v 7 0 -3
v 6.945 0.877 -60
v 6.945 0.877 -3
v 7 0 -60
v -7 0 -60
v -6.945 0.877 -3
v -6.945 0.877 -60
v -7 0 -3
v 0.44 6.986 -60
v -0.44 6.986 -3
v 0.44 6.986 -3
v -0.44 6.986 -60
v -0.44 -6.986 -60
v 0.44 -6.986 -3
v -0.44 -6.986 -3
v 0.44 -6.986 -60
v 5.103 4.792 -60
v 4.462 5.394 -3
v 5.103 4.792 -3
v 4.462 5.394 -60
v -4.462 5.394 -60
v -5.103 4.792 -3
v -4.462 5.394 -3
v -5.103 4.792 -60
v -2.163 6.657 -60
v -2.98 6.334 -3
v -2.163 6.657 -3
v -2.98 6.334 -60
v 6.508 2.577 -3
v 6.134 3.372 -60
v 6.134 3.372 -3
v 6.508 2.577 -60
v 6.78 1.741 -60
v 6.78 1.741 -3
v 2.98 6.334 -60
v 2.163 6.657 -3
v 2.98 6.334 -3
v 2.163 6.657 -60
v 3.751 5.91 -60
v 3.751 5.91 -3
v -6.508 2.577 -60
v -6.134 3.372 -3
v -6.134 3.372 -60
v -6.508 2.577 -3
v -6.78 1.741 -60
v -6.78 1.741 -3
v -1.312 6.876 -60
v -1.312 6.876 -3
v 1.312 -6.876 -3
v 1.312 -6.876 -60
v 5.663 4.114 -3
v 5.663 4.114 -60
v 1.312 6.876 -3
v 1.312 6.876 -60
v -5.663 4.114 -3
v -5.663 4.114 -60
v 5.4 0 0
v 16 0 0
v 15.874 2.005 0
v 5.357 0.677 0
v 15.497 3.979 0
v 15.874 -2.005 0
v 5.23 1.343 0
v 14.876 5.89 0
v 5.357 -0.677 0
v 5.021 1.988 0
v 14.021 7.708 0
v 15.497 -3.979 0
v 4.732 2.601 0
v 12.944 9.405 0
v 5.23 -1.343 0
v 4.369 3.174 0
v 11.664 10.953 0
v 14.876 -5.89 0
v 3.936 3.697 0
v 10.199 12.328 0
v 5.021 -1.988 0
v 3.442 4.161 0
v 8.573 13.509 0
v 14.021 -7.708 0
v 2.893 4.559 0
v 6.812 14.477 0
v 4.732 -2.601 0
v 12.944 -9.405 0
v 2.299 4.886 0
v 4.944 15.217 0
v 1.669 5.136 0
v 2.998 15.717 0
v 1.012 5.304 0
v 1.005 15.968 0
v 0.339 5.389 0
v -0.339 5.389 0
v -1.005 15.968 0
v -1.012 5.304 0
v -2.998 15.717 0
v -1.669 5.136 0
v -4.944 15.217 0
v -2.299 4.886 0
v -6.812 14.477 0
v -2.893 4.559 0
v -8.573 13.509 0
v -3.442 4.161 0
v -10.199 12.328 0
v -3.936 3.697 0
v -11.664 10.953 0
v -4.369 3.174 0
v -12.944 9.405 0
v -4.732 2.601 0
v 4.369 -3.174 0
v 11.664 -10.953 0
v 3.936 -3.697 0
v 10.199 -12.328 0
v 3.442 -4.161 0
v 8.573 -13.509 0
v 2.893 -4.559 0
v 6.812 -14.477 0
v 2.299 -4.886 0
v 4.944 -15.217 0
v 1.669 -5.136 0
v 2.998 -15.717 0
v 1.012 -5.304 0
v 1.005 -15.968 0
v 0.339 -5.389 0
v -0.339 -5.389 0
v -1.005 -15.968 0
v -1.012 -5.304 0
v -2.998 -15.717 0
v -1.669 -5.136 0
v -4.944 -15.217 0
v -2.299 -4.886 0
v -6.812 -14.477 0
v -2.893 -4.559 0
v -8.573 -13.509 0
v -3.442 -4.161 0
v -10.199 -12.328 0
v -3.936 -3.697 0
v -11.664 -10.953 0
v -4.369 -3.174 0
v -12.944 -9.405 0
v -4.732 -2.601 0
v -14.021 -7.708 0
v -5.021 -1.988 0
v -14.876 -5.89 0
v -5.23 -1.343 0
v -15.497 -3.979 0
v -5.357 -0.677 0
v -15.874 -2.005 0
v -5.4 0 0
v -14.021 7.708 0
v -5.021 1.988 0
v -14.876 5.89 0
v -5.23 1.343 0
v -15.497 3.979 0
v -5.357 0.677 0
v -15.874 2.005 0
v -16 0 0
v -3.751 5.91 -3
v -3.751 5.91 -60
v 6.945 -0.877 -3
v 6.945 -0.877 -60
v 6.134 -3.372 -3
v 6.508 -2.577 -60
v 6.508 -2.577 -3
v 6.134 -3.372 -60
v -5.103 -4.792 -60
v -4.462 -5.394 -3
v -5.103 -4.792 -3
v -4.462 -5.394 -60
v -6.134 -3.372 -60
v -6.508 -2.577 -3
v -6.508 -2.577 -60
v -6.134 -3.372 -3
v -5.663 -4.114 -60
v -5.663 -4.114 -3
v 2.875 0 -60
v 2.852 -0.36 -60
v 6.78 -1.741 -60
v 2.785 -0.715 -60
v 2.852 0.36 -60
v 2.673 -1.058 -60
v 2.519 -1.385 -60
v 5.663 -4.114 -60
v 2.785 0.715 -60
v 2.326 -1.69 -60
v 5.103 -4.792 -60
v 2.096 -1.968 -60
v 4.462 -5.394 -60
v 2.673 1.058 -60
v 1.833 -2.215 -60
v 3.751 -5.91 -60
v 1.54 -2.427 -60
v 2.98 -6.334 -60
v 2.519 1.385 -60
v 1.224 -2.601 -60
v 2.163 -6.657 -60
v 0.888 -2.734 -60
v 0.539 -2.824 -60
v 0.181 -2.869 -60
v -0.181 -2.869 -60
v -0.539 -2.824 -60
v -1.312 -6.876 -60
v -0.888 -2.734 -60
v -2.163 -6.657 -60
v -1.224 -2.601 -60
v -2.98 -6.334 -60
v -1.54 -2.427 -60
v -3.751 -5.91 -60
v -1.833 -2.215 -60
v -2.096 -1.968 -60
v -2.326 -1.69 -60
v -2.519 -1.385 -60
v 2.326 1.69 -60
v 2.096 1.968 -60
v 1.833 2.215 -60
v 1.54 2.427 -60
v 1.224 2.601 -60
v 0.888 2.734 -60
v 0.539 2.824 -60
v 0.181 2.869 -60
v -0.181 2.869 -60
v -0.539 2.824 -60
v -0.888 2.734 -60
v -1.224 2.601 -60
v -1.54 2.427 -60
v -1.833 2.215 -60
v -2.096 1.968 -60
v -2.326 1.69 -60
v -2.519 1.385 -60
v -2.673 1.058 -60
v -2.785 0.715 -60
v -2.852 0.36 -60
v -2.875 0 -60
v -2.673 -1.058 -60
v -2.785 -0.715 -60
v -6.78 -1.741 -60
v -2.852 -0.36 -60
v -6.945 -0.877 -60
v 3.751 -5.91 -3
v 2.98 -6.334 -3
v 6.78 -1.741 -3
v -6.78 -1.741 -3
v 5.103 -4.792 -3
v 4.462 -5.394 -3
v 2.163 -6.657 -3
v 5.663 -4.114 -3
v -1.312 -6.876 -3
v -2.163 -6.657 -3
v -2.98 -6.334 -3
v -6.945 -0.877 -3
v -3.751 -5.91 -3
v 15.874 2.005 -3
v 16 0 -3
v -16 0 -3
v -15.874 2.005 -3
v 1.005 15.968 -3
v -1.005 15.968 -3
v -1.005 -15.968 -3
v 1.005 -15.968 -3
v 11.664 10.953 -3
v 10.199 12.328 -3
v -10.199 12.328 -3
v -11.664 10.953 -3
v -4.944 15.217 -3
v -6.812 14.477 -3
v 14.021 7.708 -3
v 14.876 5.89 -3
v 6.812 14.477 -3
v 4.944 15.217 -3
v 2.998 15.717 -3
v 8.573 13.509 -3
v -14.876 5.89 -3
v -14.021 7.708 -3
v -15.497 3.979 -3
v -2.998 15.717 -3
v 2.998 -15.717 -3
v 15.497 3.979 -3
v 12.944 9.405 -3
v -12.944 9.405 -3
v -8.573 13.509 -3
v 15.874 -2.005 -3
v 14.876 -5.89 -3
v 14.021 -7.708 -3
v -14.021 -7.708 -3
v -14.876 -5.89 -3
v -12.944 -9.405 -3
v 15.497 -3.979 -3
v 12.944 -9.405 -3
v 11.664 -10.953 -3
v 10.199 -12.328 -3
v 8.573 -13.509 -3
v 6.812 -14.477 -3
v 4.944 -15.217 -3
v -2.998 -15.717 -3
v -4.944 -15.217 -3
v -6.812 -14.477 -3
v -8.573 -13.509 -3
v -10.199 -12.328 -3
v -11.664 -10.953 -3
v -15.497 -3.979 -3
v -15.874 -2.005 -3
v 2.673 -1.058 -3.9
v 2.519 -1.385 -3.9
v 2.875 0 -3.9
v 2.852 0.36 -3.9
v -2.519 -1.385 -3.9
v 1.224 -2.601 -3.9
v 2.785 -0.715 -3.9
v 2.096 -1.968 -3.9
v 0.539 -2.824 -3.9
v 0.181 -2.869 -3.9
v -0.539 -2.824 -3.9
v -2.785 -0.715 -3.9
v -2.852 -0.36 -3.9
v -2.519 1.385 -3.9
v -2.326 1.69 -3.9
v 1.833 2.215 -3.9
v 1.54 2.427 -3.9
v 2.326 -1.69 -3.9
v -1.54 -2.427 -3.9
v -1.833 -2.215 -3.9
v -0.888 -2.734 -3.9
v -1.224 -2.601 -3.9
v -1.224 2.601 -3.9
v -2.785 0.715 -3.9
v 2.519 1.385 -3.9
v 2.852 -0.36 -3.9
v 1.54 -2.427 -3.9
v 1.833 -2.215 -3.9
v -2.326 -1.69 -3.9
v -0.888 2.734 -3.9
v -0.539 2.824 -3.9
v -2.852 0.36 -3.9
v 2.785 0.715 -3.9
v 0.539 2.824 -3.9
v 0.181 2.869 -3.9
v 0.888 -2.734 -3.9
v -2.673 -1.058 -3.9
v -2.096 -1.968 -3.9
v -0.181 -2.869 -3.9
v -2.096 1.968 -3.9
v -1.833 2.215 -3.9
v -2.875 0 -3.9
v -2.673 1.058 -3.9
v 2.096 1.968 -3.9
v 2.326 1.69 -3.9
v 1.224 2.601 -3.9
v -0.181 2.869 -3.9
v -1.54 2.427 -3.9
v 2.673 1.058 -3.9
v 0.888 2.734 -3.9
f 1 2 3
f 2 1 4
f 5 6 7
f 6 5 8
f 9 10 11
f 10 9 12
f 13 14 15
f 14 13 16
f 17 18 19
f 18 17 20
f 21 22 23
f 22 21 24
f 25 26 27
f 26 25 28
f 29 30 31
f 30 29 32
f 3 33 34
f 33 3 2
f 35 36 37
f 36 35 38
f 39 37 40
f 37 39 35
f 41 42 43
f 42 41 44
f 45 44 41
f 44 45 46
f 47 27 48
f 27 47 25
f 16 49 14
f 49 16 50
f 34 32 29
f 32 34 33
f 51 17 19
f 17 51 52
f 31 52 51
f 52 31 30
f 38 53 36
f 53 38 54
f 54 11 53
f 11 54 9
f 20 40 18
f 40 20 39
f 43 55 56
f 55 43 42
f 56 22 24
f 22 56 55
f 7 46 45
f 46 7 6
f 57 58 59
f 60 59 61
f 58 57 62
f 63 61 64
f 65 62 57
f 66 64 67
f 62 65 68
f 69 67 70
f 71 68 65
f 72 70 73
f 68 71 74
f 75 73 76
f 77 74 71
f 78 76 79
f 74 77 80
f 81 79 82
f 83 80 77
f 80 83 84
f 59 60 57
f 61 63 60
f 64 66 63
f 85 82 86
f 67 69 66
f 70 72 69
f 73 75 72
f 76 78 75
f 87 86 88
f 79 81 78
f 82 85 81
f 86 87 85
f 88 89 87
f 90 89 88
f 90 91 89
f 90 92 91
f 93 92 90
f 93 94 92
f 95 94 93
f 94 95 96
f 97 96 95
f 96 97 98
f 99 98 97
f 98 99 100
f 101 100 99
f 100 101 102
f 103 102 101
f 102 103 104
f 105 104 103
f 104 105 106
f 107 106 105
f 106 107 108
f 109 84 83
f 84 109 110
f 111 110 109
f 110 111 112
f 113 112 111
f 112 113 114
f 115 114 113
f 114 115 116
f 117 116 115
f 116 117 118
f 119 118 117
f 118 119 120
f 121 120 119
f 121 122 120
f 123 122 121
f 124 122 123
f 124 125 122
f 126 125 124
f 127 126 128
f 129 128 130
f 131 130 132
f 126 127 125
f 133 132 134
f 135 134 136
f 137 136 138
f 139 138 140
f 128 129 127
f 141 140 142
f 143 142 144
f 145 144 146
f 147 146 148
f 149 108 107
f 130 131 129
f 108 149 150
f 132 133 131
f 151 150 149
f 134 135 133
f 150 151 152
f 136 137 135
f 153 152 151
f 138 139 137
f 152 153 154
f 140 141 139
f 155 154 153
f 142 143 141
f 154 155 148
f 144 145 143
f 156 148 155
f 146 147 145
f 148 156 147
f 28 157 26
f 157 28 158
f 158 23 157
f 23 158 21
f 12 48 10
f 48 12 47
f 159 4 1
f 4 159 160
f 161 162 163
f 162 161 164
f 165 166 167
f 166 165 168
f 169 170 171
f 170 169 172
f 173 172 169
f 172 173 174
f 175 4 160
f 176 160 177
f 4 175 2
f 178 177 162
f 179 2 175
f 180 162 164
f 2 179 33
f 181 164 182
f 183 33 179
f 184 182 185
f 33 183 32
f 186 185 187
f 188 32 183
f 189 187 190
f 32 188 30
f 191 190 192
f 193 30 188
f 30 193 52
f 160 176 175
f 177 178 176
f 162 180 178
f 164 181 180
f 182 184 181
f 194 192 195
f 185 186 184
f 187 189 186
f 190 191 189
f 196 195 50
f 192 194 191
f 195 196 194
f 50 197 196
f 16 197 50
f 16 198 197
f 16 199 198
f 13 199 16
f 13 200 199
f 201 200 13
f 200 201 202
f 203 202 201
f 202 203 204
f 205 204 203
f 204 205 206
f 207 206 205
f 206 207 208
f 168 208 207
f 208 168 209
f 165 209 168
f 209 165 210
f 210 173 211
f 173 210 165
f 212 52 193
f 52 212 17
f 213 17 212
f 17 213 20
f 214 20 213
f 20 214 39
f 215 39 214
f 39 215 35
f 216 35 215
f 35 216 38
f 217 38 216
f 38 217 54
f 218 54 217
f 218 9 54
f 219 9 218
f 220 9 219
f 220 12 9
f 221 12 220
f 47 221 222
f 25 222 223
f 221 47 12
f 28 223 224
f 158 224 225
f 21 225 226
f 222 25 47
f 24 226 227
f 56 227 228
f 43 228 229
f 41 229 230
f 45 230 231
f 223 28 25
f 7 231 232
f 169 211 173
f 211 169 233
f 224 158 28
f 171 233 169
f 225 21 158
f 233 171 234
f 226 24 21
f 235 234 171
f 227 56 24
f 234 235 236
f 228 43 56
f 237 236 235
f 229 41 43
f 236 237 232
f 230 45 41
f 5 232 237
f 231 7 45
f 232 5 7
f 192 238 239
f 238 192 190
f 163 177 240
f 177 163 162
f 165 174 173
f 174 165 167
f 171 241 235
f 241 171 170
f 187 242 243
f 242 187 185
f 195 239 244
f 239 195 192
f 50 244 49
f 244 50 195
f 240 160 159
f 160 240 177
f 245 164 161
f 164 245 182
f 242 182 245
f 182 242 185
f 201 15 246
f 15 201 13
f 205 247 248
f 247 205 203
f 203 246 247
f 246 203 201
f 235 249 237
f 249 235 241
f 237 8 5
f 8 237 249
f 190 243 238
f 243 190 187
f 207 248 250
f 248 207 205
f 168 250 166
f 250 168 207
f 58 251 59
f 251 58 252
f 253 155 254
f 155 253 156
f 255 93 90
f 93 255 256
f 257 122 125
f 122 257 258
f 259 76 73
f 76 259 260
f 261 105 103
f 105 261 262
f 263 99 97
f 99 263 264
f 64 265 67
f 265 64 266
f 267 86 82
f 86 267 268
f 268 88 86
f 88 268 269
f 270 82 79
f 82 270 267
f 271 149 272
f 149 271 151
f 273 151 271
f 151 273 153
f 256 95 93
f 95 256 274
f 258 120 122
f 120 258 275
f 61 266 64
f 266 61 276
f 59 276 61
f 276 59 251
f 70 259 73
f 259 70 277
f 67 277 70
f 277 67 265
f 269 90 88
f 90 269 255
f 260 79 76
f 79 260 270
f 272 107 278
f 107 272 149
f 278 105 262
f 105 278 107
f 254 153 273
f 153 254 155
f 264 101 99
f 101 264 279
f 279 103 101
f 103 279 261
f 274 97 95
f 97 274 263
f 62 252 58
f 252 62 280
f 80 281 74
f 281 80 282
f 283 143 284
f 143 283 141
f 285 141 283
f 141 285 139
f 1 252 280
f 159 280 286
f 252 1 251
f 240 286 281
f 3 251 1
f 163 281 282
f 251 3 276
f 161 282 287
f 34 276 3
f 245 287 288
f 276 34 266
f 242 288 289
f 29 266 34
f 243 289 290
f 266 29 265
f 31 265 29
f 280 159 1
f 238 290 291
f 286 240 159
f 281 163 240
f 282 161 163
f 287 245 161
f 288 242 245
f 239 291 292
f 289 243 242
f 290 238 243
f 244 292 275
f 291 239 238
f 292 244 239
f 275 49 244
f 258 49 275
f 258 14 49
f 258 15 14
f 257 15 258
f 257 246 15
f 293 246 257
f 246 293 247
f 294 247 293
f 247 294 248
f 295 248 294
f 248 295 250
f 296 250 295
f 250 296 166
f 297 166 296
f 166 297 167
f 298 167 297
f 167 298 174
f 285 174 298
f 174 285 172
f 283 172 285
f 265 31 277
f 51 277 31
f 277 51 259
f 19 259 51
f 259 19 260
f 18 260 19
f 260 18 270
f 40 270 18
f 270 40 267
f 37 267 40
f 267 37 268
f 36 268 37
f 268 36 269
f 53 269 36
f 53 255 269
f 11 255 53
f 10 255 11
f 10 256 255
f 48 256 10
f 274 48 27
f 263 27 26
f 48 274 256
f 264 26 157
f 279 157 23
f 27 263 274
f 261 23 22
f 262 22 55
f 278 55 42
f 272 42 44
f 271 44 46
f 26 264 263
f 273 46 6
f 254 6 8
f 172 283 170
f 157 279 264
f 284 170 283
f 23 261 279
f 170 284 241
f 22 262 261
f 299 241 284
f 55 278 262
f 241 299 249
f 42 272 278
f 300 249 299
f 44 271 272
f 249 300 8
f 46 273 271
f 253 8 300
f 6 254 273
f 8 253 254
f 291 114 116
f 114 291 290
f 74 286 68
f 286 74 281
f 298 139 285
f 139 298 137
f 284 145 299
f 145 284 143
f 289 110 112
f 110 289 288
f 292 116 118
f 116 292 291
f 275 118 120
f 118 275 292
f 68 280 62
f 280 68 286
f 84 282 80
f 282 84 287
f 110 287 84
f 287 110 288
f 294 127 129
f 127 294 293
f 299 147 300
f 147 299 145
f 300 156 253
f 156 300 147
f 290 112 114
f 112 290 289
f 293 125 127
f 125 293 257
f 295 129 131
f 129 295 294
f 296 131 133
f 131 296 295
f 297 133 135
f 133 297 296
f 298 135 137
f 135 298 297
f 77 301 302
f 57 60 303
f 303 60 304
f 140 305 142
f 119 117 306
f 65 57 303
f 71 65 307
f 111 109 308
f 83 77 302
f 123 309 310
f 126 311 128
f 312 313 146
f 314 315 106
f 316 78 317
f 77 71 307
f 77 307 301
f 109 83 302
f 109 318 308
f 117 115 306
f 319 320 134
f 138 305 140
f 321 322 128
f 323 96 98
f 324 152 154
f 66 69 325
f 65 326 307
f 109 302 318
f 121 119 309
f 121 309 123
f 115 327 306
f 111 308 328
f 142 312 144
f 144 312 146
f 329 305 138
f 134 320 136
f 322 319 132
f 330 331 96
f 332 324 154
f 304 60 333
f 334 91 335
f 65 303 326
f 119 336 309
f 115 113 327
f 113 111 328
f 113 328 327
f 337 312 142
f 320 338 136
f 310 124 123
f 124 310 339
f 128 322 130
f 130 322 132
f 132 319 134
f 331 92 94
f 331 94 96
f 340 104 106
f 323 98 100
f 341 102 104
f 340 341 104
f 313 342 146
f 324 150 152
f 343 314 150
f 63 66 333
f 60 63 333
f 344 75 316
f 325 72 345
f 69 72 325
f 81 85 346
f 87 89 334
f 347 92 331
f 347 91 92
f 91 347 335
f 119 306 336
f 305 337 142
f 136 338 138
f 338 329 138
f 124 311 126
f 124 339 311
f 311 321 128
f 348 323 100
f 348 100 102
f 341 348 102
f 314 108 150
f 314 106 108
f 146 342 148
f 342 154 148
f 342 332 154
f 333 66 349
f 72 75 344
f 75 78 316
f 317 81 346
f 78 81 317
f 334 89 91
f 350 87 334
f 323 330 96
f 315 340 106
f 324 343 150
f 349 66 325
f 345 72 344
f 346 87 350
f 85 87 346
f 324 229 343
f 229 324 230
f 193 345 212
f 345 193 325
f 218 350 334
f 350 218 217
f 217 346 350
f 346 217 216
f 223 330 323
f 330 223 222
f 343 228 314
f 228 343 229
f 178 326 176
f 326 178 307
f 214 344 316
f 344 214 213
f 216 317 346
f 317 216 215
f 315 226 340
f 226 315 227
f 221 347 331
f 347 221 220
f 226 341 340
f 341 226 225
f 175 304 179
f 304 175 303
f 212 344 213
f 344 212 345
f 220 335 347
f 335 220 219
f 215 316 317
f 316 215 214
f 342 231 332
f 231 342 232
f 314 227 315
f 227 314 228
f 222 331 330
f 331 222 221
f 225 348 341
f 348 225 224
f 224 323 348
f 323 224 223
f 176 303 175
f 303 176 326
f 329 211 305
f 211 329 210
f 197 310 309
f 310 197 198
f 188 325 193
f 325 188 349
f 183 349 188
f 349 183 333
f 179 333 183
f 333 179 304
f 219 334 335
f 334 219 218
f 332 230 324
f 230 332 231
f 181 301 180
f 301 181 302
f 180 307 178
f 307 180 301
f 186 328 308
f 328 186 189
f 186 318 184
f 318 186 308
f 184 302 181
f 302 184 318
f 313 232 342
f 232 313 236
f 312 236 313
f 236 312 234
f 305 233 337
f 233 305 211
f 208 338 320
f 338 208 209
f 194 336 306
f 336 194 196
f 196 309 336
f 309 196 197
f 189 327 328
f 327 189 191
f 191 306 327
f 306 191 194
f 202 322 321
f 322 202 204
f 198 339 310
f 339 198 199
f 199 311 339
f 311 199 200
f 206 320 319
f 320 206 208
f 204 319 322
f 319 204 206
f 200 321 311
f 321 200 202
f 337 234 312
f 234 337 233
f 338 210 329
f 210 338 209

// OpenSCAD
$fn = 50;


difference() {
	union() {
		translate(v = [0, 0, -60.0000000000]) {
			cylinder(h = 60, r = 7.0000000000);
		}
		translate(v = [0, 0, -3.0000000000]) {
			cylinder(h = 3, r = 16.0000000000);
		}
	}
	union() {
		translate(v = [0, 0, 0]) {
			rotate(a = [0, 0, 0]) {
				difference() {
					union() {
						#translate(v = [0, 0, -60.0000000000]) {
							cylinder(h = 60, r = 2.6000000000);
						}
						#translate(v = [0, 0, -3.9000000000]) {
							cylinder(h = 3.9000000000, r1 = 2.8750000000, r2 = 5.4000000000);
						}
						#translate(v = [0, 0, -60.0000000000]) {
							cylinder(h = 60, r = 2.8750000000);
						}
						#translate(v = [0, 0, -60.0000000000]) {
							cylinder(h = 60, r = 2.6000000000);
						}
					}
					union();
				}
			}
		}
	}
}
